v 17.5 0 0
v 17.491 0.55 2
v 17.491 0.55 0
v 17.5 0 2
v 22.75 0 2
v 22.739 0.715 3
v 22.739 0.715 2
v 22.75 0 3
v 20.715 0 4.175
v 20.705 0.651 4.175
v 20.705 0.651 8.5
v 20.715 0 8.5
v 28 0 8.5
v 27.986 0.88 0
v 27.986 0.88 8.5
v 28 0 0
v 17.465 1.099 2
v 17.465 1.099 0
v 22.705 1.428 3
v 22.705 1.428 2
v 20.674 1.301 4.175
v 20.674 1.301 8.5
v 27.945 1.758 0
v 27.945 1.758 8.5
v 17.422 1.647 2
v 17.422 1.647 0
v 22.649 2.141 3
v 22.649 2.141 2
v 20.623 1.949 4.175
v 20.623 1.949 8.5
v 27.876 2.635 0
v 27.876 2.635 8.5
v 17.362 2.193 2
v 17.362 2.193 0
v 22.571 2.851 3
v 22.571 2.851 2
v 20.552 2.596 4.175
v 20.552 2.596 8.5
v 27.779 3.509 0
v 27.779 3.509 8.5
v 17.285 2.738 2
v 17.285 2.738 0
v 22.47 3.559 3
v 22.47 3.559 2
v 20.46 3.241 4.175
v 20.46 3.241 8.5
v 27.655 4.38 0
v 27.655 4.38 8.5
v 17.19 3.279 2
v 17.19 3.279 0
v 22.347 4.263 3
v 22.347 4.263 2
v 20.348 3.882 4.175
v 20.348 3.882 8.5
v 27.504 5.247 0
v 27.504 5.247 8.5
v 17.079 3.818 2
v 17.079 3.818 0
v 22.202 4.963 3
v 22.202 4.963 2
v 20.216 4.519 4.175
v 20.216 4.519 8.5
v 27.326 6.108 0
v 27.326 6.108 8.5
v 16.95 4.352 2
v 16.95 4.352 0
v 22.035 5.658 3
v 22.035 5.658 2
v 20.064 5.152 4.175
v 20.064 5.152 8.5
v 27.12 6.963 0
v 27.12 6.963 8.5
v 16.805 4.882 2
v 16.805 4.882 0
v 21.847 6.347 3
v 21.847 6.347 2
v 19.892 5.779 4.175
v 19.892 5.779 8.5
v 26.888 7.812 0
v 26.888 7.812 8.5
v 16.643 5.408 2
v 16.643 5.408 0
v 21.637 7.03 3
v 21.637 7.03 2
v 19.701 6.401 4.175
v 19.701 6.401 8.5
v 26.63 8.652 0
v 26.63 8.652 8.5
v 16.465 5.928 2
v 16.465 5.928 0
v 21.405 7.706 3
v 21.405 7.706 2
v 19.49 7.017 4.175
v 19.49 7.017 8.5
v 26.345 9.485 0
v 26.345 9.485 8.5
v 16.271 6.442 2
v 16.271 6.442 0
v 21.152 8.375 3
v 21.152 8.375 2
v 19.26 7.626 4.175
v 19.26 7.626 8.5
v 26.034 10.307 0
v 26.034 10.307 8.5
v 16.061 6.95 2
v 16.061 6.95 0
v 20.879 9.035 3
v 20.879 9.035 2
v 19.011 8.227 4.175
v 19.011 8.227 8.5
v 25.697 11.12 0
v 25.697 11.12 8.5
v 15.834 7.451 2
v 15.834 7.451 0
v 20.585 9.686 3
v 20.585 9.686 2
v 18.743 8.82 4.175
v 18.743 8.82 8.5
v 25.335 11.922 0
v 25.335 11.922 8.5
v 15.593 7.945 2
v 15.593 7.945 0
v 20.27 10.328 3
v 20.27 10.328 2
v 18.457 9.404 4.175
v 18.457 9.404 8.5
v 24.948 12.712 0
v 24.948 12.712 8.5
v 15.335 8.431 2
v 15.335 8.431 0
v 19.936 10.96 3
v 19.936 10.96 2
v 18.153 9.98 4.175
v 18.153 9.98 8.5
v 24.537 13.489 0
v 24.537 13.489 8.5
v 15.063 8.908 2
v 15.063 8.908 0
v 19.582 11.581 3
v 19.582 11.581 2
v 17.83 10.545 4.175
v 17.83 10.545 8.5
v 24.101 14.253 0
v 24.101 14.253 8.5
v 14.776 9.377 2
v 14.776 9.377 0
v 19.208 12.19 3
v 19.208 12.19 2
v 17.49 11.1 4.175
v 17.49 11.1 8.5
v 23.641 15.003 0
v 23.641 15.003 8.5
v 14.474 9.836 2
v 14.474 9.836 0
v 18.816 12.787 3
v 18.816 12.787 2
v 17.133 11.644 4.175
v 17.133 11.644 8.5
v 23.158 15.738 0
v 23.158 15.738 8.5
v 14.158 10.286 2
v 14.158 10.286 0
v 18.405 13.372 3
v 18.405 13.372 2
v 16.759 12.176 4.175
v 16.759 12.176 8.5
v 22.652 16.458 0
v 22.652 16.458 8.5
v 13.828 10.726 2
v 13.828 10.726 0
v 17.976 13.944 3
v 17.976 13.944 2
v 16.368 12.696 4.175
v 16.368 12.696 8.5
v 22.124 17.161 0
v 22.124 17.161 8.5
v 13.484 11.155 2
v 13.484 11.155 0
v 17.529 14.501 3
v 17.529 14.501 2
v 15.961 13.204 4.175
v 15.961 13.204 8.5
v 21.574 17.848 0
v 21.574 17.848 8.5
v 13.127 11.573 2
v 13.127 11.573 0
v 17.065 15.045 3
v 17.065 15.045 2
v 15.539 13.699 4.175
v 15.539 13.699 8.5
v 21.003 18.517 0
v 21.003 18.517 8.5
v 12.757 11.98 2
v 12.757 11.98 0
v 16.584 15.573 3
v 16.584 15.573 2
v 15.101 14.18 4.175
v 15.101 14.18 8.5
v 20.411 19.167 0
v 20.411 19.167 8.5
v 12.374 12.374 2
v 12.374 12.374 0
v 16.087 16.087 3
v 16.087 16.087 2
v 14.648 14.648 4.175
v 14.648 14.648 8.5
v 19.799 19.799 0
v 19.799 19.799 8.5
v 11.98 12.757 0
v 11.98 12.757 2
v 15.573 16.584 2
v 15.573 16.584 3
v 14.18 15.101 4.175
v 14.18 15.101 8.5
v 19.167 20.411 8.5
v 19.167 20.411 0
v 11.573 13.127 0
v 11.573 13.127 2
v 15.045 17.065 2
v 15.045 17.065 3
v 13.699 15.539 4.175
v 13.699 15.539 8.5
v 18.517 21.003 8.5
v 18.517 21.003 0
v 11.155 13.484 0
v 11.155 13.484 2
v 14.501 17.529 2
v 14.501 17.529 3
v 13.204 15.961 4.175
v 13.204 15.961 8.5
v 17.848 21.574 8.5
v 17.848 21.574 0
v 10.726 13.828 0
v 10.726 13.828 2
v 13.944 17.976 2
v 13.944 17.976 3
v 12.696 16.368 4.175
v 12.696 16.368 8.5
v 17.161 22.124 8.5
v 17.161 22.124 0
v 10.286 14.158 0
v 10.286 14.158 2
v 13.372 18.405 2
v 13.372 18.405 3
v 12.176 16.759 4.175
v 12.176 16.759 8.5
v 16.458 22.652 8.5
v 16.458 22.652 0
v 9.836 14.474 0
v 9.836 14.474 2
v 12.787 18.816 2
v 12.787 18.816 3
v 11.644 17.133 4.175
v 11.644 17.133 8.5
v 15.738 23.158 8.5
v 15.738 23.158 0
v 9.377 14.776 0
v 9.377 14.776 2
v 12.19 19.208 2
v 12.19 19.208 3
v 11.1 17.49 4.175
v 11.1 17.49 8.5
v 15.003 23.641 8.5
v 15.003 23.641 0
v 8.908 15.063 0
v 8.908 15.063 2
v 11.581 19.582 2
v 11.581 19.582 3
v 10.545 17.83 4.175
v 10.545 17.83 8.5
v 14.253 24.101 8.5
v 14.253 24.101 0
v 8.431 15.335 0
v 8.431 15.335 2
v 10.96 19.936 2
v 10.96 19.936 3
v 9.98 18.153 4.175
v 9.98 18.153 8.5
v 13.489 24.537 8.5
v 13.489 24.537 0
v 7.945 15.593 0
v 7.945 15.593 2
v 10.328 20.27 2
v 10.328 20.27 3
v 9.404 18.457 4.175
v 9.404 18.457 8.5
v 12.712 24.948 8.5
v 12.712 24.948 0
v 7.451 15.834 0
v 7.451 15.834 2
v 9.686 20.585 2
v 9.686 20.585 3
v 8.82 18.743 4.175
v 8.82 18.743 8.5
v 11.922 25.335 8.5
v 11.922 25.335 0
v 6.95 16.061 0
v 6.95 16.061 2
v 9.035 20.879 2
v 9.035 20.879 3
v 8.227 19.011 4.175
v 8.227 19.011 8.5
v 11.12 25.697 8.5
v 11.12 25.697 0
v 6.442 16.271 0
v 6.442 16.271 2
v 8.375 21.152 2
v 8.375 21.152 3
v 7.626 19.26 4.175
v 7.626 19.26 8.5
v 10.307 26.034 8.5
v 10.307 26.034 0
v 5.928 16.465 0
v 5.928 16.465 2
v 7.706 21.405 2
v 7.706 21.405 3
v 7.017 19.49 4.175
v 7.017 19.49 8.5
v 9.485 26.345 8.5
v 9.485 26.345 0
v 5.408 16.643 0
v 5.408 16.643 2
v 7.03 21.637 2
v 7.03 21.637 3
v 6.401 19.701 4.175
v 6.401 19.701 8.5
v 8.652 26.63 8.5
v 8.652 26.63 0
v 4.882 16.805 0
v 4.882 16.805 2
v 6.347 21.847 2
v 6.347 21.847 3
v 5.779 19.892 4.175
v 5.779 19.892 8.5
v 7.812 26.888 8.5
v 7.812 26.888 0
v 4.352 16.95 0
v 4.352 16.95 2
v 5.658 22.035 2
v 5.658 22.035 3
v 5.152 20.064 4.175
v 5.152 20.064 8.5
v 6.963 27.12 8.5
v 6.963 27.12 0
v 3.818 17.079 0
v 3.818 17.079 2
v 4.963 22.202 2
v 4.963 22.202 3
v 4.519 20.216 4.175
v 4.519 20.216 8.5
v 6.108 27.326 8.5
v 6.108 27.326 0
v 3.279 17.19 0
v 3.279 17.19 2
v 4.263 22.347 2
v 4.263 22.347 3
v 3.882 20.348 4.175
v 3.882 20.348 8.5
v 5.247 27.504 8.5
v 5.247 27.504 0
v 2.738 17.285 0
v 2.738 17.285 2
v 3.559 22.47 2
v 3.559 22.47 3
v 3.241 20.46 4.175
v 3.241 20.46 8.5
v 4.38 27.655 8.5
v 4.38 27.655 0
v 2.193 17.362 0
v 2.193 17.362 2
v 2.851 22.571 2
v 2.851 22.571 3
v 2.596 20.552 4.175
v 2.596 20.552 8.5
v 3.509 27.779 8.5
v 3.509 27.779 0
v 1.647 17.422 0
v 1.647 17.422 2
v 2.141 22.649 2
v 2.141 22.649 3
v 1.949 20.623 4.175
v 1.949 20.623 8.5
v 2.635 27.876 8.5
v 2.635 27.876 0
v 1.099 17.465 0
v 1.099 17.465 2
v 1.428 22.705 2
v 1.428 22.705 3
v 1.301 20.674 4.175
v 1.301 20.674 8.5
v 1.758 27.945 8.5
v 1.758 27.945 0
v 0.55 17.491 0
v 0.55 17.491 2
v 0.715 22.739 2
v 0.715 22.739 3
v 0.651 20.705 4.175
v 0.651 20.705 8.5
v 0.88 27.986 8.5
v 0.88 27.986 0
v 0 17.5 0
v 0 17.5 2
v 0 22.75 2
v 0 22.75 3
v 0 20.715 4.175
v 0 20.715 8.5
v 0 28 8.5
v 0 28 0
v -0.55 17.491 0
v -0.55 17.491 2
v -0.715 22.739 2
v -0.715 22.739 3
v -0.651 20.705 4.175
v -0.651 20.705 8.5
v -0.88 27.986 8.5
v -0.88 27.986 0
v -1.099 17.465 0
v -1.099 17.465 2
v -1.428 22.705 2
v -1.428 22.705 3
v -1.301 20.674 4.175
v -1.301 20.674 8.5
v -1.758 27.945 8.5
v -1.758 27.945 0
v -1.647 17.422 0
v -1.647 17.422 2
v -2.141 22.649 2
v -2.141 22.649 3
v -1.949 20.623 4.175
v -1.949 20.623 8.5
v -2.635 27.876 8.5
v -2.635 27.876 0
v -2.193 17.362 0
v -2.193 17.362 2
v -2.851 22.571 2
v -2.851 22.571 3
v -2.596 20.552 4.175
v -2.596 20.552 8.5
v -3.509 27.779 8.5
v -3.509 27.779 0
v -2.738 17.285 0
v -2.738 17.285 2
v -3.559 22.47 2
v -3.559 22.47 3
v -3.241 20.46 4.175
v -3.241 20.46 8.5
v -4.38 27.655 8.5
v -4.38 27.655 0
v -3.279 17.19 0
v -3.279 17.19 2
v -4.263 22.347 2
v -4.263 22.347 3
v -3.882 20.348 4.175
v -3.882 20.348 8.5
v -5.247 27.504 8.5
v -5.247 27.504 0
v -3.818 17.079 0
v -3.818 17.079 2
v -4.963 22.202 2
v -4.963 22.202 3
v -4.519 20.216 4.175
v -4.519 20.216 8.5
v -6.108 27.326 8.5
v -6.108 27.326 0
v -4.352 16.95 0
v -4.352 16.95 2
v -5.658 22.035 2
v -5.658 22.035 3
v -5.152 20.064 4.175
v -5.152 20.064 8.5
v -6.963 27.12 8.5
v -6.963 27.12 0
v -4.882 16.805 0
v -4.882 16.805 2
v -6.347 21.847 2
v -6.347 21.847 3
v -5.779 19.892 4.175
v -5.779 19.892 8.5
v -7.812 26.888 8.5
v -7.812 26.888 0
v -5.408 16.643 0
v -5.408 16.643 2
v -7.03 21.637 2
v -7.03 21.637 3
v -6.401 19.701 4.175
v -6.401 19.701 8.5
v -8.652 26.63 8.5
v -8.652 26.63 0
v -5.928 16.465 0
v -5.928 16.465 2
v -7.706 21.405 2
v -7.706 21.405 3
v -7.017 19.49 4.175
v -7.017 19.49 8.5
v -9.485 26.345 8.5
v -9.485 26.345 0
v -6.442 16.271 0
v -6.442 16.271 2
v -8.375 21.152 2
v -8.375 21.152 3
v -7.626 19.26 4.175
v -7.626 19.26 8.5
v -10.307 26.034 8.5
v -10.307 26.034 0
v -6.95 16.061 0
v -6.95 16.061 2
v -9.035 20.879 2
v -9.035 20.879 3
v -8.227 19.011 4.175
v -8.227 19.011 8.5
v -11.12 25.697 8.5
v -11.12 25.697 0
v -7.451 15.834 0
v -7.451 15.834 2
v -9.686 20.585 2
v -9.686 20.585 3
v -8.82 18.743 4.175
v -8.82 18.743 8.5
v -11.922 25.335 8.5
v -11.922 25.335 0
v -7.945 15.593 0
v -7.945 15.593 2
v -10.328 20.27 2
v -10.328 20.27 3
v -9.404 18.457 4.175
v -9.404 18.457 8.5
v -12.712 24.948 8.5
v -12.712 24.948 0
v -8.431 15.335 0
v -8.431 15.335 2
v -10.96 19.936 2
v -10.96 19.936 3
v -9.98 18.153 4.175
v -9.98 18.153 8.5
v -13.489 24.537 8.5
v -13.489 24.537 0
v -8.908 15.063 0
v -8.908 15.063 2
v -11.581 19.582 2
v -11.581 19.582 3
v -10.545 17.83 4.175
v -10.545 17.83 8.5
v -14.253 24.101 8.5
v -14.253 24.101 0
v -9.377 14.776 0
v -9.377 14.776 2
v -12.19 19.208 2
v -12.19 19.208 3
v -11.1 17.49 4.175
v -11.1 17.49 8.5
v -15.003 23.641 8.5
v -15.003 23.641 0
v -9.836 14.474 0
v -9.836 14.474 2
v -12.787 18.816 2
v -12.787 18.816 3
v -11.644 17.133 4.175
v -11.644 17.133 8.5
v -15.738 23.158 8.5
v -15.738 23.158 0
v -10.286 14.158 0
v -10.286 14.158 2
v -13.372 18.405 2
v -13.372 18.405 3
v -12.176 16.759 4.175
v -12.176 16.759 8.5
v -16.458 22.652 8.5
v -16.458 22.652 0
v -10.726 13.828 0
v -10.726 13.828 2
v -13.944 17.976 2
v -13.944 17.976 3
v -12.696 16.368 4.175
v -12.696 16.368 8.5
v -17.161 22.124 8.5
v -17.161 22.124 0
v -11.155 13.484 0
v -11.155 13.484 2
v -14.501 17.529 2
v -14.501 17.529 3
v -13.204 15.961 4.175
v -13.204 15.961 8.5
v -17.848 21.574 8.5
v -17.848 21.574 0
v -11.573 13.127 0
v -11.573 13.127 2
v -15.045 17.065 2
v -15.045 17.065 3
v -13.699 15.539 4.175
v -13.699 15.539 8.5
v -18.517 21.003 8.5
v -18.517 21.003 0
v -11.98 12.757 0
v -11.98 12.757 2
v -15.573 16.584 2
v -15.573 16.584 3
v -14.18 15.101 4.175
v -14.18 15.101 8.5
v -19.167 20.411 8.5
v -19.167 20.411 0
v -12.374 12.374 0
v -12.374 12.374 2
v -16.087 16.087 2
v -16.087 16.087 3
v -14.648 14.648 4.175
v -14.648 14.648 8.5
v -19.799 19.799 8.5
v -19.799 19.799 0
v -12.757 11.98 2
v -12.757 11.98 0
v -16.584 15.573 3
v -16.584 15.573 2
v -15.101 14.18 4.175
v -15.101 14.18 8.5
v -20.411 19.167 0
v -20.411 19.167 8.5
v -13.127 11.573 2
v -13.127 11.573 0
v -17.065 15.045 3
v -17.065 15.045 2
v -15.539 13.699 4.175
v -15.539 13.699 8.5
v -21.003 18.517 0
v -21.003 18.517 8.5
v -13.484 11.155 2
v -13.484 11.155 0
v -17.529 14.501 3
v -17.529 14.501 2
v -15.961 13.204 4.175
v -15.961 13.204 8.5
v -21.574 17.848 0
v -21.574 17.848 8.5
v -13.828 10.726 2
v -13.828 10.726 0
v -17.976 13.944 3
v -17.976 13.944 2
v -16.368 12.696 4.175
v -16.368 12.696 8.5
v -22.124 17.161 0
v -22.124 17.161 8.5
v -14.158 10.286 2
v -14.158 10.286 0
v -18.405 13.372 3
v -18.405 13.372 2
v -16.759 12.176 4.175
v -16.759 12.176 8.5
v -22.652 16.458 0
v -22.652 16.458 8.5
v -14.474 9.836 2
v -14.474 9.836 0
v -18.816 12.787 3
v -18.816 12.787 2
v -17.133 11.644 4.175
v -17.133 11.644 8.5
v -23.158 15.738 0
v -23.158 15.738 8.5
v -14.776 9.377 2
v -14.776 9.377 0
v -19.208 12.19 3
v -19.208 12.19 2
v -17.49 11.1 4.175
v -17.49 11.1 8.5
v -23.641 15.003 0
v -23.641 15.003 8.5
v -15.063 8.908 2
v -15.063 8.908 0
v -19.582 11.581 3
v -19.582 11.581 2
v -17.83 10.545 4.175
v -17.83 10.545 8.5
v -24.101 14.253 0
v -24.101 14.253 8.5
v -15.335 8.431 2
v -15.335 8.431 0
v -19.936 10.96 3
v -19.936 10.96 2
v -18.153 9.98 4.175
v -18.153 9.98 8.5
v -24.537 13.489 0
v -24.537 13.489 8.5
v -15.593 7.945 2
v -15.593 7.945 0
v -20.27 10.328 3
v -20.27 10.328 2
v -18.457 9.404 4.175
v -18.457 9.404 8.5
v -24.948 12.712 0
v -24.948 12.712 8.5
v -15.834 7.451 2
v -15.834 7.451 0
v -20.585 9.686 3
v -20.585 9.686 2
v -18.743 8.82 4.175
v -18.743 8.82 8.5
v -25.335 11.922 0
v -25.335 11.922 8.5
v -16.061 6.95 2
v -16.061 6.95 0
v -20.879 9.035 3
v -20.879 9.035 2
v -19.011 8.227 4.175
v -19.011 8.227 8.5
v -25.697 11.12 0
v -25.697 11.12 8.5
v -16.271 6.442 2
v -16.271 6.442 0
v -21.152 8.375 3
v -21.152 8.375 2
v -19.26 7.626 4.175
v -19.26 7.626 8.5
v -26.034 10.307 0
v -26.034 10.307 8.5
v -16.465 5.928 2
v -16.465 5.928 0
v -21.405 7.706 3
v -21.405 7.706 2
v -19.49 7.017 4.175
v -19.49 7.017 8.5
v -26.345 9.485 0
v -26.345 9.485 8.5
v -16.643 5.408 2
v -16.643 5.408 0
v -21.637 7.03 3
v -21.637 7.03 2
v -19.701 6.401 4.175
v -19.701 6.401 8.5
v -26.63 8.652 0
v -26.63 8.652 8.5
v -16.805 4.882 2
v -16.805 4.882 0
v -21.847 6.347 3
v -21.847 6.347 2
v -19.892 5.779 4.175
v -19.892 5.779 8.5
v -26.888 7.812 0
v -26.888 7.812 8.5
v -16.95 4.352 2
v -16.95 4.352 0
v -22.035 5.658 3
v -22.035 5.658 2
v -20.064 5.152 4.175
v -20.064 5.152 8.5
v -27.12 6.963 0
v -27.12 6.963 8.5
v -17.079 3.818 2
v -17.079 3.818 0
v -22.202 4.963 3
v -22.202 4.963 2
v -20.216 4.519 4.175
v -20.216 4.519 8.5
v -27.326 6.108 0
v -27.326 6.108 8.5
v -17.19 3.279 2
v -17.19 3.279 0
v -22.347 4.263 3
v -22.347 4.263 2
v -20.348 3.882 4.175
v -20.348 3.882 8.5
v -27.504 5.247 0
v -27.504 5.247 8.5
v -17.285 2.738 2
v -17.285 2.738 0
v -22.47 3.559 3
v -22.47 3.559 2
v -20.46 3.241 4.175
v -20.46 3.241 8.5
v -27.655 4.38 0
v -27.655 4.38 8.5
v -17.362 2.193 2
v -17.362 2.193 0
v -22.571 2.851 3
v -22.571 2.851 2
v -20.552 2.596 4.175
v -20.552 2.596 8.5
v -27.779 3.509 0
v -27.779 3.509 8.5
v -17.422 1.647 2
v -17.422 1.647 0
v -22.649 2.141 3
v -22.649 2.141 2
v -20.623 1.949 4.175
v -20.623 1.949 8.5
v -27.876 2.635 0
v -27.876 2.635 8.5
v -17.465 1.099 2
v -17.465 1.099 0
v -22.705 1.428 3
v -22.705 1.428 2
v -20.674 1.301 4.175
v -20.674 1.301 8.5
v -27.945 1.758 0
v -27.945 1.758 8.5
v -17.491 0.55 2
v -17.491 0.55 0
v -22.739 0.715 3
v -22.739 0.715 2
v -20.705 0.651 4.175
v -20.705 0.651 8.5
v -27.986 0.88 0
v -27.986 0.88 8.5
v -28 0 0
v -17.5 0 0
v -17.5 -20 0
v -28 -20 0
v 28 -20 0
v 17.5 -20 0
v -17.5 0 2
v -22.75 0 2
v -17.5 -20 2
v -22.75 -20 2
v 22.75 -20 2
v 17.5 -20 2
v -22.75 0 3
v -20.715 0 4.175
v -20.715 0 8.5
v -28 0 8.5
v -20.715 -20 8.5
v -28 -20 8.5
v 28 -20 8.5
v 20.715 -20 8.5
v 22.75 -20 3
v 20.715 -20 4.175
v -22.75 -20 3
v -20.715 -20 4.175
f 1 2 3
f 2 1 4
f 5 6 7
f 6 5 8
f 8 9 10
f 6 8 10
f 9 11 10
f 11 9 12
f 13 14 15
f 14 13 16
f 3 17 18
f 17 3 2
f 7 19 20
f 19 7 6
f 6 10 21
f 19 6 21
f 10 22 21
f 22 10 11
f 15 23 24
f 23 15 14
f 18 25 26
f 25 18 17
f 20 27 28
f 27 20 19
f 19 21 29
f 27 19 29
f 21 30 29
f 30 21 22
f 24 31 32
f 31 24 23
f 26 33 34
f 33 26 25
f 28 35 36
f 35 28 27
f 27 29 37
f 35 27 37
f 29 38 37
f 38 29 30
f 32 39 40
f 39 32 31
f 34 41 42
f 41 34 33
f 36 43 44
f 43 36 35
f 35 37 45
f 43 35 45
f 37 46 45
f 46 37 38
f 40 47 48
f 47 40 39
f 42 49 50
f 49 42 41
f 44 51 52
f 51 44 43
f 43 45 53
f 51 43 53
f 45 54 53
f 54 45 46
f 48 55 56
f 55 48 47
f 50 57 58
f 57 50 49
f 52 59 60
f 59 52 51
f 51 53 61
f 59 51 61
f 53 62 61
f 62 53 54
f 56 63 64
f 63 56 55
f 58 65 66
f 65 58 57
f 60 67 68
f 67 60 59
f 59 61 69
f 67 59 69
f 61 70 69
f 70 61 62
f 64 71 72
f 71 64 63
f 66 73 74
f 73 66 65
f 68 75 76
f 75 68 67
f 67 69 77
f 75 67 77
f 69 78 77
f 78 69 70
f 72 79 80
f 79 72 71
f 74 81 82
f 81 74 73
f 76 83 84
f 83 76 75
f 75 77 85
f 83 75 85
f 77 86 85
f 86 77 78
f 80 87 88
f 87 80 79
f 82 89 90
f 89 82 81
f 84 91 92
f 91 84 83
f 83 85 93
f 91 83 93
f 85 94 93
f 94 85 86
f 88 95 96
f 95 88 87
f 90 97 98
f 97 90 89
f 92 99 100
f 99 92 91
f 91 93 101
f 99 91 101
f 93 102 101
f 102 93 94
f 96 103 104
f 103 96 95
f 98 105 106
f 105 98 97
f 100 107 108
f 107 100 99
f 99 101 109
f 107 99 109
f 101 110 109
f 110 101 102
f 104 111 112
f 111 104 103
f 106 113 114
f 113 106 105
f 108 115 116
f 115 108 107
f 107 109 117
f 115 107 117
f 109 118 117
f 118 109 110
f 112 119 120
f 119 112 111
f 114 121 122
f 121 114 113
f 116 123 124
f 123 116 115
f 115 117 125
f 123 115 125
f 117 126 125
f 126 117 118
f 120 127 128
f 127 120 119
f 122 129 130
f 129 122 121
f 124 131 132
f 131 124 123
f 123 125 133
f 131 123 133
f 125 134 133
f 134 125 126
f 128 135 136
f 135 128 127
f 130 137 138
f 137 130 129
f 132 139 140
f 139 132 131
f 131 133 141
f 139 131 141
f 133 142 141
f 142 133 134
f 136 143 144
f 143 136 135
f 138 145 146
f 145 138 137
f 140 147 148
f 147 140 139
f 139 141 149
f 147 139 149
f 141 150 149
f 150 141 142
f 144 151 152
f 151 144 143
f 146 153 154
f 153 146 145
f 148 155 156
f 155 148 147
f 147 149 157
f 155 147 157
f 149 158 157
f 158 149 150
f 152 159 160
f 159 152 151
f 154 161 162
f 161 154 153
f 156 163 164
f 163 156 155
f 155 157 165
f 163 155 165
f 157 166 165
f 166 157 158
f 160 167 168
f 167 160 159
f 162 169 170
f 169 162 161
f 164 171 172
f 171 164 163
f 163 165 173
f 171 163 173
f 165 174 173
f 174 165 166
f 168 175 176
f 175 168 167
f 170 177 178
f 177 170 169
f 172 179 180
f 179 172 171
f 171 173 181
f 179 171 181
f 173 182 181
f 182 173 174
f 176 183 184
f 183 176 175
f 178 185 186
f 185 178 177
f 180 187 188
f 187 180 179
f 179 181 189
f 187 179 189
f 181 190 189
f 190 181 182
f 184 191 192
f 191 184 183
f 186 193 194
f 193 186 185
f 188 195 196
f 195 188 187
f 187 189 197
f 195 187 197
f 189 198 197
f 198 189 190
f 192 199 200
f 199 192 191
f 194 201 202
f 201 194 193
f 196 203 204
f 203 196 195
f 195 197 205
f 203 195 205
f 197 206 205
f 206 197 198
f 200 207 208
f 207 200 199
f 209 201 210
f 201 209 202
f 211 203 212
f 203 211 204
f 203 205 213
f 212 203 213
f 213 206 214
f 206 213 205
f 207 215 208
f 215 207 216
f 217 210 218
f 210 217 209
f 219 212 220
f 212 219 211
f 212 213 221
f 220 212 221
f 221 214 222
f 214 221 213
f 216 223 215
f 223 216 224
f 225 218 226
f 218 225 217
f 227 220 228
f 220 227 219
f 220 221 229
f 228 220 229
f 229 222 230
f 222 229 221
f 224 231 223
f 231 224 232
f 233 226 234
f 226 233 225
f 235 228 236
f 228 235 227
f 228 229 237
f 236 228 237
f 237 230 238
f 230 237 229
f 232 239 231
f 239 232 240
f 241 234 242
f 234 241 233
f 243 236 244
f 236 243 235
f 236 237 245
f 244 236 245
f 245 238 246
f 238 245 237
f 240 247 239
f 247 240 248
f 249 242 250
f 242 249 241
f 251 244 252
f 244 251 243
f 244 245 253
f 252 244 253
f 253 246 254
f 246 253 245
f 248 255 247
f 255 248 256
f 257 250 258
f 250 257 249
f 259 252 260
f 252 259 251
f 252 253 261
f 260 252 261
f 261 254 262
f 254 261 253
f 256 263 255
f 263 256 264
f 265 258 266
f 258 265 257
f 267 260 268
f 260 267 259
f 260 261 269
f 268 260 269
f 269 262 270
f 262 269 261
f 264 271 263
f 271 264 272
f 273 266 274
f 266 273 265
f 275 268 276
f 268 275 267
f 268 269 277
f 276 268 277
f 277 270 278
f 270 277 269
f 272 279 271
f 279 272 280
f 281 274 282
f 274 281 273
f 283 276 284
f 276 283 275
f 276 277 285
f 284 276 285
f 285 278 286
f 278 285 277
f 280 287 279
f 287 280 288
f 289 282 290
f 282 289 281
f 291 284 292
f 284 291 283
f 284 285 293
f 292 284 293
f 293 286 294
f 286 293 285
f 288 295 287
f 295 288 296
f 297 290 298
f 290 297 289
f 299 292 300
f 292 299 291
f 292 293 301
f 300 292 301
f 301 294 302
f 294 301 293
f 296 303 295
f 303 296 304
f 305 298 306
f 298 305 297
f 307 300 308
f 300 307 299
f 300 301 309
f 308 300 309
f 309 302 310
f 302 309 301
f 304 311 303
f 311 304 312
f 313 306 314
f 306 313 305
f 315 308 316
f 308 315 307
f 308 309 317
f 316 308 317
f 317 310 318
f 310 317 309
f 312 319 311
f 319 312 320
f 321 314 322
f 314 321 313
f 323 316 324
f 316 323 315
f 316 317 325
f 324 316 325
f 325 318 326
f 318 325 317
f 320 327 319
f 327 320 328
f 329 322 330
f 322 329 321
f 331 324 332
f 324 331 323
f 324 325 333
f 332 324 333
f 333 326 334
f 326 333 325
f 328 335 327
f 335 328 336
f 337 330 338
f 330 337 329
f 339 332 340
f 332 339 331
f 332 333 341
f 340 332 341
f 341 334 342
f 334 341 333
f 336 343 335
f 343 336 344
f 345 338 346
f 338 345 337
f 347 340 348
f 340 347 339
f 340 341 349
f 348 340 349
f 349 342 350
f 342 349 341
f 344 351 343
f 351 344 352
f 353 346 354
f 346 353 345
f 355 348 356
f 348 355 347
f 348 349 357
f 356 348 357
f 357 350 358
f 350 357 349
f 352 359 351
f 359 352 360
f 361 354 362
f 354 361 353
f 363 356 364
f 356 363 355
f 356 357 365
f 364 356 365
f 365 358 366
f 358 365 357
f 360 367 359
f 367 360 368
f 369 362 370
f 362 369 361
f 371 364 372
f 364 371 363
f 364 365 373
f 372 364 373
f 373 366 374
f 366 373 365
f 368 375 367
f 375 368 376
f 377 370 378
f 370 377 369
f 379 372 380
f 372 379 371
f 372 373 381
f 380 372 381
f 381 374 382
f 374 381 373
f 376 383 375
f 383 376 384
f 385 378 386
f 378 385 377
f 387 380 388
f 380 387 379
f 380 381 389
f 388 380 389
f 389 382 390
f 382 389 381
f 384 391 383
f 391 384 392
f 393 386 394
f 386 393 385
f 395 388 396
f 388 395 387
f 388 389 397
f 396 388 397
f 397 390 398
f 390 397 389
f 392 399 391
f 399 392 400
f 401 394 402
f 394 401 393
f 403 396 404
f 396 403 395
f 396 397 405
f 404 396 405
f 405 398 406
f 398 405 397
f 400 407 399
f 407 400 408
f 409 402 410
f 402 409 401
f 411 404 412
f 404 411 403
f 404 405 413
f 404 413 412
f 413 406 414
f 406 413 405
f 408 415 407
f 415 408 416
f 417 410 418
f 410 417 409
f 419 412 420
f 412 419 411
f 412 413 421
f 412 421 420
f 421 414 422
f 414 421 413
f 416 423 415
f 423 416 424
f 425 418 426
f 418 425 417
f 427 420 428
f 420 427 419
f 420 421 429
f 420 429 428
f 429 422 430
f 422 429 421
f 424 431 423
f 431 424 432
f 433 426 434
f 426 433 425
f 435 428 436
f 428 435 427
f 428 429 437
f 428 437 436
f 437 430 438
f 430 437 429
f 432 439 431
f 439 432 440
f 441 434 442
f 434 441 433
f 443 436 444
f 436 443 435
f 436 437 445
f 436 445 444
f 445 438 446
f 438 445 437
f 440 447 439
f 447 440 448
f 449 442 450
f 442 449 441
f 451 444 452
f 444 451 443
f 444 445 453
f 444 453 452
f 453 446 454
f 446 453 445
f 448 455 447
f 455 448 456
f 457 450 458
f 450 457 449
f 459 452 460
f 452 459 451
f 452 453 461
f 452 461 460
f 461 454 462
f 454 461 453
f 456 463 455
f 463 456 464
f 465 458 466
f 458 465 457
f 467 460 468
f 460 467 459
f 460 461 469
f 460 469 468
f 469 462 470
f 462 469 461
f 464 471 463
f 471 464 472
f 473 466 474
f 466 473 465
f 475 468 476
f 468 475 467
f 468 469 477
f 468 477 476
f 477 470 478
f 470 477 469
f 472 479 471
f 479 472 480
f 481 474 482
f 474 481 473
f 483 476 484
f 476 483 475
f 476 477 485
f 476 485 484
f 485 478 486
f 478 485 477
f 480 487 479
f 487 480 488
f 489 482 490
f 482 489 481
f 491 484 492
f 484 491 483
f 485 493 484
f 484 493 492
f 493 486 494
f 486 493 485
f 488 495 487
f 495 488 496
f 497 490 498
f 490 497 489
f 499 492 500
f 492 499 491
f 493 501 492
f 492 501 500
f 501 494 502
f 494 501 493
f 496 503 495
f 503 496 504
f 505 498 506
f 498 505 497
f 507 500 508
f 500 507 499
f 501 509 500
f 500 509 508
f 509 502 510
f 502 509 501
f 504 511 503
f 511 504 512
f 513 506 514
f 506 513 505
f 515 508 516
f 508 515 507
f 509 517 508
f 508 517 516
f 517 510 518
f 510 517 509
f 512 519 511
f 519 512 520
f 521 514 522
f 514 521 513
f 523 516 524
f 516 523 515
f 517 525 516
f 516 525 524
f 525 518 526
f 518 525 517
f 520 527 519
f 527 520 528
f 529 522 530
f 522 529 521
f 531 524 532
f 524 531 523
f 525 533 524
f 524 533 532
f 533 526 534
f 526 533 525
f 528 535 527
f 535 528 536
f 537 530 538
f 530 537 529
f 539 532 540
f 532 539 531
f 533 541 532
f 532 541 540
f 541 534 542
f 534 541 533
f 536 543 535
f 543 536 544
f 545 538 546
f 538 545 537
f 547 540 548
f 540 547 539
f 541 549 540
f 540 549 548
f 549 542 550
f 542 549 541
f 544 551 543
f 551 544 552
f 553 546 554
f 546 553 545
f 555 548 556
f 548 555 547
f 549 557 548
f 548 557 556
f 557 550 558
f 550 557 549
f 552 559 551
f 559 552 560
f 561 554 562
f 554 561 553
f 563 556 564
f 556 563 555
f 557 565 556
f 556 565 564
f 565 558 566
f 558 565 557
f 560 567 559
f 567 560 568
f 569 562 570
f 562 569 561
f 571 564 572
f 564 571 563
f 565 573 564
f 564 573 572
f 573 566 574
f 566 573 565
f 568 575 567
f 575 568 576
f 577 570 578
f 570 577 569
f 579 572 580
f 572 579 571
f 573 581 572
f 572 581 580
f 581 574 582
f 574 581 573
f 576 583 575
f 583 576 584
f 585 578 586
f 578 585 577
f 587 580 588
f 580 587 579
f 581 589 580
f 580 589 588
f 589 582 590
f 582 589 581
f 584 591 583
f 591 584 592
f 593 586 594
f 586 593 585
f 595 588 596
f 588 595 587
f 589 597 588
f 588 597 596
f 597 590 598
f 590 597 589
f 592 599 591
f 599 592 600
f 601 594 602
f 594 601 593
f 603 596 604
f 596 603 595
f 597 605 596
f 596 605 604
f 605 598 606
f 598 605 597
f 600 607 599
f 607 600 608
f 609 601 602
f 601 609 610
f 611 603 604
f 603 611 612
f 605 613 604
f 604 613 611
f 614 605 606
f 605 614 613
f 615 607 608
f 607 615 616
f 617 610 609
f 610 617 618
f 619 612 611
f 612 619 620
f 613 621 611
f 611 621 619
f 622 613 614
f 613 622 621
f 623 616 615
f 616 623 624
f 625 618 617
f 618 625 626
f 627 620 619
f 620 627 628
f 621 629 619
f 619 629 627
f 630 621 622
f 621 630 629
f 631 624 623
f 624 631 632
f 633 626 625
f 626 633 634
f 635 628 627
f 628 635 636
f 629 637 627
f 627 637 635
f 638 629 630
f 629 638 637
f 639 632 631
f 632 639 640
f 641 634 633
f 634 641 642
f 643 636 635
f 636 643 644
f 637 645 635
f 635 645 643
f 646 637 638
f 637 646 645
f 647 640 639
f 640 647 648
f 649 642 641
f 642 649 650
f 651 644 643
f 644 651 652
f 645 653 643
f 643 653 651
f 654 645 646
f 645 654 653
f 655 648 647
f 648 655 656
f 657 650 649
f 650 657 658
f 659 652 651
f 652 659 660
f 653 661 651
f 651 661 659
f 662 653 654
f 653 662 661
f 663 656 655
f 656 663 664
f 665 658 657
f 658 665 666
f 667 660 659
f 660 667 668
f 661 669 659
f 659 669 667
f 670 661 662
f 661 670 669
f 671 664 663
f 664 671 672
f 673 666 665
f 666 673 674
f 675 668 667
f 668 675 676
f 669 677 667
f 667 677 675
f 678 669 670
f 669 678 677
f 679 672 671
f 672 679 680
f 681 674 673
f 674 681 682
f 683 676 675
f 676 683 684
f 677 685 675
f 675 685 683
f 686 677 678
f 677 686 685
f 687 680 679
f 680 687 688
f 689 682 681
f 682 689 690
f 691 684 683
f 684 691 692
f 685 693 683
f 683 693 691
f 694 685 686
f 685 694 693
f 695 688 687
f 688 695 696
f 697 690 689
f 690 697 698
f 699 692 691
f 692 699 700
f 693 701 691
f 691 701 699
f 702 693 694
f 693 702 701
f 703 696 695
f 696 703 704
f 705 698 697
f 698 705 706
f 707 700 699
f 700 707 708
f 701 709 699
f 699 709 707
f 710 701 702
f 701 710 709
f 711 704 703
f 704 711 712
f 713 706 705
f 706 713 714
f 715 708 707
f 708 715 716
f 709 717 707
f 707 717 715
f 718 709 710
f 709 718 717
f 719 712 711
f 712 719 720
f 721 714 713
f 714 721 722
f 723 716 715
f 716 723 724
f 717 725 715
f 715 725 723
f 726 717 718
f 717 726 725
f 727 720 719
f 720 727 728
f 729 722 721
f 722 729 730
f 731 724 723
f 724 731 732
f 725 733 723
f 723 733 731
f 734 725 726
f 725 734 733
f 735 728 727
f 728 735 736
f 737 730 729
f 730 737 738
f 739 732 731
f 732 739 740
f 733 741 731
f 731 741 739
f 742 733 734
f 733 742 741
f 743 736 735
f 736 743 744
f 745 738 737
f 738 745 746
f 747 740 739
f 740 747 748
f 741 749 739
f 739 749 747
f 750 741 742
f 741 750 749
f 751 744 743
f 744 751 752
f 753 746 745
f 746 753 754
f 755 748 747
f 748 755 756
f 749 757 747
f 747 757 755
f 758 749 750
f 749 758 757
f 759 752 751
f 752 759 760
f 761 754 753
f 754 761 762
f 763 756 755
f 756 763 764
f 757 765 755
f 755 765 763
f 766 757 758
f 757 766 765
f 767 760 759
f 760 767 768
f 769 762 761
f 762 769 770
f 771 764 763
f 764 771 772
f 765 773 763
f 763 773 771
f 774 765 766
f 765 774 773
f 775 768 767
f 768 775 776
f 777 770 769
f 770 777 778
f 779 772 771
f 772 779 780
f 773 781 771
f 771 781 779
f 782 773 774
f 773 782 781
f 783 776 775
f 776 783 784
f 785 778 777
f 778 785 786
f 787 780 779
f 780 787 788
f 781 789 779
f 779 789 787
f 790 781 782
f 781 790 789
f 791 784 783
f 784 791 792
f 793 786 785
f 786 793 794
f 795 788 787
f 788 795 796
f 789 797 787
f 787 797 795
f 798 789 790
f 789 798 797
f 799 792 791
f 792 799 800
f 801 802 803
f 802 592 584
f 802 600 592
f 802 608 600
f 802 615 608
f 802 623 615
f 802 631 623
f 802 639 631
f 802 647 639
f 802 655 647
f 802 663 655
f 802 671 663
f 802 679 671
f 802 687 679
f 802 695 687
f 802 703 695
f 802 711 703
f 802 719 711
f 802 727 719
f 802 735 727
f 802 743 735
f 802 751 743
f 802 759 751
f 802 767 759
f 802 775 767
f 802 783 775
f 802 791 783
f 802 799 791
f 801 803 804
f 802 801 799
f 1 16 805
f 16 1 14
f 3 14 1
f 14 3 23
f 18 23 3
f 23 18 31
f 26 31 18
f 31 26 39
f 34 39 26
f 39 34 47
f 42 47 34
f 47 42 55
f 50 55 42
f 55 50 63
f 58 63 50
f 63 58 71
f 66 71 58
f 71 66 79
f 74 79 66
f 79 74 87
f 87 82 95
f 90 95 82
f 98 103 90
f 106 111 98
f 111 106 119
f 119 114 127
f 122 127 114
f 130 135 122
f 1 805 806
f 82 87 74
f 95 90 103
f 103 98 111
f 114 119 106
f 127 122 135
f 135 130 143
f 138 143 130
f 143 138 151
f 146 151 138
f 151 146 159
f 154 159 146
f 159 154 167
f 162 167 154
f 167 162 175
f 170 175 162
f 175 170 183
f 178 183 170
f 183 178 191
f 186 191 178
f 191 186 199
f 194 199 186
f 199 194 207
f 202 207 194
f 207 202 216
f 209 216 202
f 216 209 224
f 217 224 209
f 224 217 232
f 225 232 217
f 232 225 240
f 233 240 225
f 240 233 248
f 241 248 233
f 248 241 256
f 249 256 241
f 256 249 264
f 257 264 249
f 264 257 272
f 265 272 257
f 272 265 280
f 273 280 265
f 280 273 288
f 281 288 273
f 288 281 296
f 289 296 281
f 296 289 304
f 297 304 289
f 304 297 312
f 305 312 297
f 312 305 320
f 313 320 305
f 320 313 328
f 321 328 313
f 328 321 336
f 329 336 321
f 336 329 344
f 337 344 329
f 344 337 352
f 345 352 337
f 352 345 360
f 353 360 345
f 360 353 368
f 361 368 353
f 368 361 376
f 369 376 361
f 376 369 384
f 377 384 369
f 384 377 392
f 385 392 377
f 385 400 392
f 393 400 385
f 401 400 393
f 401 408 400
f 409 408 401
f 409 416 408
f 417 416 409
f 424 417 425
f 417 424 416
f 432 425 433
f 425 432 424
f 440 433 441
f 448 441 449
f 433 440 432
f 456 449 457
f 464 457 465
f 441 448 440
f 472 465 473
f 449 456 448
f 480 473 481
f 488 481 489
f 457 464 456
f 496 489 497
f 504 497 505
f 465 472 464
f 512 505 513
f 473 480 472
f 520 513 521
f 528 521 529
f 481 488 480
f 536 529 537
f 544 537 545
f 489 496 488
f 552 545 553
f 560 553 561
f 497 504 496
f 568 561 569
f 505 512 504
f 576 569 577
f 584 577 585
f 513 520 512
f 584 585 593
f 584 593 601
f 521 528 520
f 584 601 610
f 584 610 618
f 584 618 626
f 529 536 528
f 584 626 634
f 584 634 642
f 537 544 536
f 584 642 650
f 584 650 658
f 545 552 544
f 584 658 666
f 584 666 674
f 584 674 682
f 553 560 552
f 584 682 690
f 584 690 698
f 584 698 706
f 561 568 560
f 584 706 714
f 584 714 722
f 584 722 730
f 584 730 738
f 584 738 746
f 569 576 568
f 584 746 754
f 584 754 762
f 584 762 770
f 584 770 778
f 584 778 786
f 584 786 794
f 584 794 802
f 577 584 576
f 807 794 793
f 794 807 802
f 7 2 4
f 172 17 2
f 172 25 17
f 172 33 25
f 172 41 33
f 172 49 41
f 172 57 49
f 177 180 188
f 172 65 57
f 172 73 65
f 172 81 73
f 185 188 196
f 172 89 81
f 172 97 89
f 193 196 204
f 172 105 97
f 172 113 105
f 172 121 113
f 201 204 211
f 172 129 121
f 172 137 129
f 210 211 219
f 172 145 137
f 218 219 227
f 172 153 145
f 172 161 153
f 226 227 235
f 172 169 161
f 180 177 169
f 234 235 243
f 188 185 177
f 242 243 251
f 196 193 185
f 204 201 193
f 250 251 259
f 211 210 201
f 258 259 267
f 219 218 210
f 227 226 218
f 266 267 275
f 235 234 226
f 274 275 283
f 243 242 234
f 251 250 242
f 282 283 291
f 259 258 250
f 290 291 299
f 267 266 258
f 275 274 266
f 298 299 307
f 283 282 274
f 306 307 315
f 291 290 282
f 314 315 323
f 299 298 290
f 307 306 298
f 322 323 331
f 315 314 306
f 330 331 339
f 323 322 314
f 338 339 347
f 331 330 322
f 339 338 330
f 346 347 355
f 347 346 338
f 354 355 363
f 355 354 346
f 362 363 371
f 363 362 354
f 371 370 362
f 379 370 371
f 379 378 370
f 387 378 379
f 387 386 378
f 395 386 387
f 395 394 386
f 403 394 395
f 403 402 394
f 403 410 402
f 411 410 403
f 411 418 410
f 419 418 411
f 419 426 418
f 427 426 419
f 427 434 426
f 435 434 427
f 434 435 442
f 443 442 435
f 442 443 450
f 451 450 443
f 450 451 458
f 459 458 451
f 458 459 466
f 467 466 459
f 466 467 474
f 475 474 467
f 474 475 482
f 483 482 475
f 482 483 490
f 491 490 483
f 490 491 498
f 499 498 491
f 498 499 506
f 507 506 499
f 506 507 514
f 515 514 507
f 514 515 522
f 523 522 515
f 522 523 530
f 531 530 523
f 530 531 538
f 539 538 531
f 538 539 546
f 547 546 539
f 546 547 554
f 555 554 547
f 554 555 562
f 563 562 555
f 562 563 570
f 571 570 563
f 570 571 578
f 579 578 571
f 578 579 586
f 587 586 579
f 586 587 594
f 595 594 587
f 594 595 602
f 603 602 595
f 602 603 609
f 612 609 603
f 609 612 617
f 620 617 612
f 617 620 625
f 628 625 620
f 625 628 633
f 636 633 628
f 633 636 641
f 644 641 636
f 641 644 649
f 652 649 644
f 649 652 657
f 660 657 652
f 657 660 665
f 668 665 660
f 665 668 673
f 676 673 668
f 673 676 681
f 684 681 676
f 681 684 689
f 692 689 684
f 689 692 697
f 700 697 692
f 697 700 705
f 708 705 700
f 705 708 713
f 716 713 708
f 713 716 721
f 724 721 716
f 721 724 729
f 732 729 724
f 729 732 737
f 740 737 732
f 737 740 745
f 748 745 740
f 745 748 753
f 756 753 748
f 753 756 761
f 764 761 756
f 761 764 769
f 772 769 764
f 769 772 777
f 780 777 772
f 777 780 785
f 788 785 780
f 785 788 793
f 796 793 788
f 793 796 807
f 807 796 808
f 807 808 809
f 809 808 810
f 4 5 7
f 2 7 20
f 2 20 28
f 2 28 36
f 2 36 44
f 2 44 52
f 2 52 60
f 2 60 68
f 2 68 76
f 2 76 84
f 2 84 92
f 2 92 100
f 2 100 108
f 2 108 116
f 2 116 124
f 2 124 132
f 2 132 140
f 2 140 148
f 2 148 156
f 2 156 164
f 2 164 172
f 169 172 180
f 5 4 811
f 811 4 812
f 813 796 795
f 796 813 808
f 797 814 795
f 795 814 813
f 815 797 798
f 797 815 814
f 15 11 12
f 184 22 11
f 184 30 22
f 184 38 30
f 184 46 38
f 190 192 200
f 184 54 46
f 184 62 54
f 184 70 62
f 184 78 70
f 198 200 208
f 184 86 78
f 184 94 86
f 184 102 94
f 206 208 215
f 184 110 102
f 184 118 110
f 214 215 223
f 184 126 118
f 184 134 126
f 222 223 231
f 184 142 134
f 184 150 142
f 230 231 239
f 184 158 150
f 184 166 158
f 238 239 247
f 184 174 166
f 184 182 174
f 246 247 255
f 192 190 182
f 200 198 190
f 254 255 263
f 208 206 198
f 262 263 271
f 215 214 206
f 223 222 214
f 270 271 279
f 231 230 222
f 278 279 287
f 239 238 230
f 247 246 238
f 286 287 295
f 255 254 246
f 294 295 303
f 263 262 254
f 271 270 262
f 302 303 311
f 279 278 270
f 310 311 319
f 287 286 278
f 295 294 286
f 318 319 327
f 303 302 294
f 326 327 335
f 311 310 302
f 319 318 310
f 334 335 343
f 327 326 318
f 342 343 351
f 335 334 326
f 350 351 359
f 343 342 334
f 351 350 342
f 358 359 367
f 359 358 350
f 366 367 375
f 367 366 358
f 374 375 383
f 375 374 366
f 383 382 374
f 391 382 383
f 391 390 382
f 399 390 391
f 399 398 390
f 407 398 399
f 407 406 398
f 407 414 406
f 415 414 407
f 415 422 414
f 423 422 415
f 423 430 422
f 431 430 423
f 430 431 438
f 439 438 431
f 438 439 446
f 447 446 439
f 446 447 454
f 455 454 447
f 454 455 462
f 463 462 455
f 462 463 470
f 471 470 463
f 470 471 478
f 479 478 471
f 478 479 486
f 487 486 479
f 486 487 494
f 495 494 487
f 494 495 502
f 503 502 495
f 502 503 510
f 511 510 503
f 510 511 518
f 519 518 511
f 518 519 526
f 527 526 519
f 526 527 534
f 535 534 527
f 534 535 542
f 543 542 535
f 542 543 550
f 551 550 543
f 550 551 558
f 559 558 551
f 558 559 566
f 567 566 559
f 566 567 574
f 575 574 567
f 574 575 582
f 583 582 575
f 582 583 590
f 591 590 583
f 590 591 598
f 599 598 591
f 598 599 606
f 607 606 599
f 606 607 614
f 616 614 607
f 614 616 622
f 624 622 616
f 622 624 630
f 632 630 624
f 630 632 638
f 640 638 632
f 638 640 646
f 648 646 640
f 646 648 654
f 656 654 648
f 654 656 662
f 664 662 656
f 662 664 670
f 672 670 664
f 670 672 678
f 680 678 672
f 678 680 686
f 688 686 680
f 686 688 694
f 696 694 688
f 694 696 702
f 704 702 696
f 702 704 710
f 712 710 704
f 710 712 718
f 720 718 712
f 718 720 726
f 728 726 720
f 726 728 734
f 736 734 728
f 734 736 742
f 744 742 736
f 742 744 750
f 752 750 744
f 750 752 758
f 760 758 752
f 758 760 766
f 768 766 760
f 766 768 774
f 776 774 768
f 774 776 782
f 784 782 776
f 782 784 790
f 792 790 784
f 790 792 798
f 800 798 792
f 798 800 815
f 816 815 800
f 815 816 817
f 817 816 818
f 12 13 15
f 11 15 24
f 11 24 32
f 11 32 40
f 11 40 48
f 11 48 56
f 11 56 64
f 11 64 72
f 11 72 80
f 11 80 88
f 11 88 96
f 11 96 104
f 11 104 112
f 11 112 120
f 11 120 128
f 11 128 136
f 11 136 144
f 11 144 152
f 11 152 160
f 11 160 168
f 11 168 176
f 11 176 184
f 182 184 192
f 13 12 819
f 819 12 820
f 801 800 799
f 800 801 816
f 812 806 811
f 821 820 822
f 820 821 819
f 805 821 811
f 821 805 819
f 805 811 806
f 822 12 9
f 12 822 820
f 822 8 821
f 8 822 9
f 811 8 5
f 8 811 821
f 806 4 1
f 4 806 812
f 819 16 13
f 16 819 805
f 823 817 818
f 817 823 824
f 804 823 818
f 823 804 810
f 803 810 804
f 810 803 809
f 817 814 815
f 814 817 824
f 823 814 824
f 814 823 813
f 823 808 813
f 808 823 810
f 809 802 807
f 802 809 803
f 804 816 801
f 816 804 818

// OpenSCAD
// Round hygrometer holder.
// Hygrometer: 45mm lip OD, 40mm body OD, 15mm thick.
// U lies flat on bed (rotate_extrude axis = Z = print Z).
// Shape: 180° arc + two tangent straight extensions = U.
// Slide device in from open end; lip captured in middle channel.

$fn = 200;

// Profile (radial X, Z height). Inner stepped wall, outer straight wall.
inner_bottom_r = 17.5;     // 35mm gap at bed (front-face stop)
lip_r          = 22.75;    // 45.5mm gap (lip channel, 45mm lip + clearance)
body_r         = 20.715;   // 41.43mm gap (body channel, 40mm body + clearance)
outer_r        = 28;       // ~5mm wall outside lip channel

z_floor   = 2;             // front-stop thickness
z_lip_top = 3;           // floor + 2.5mm lip channel
z_top     = 8.5;           // lip_top + 4mm body channel

arm_length = 20;            // straight tangent extension on each side

overhang_angle = 30;       // chamfer angle (deg from horizontal) at top inner step.
                           // 45° is steepest self-supporting overhang for FDM.
chamfer_dz = (lip_r - body_r) * tan(overhang_angle);

profile = [
    [inner_bottom_r, 0],
    [inner_bottom_r, z_floor],
    [lip_r,          z_floor],
    [lip_r,          z_lip_top],
    [body_r,         z_lip_top + chamfer_dz],   // chamfered top inner step
    [body_r,         z_top],
    [outer_r,        z_top],
    [outer_r,        0],
];

module arm() {
    // Profile placed in XZ plane (radial X from inner_bottom_r..outer_r),
    // extruded along -Y for arm_length.
    rotate([90, 0, 0])
        linear_extrude(height = arm_length)
            polygon(points = profile);
}

union() {
    // Top half arc (0° to 180° in XY plane).
    rotate_extrude(angle = 180)
        polygon(points = profile);

    // Right tangent arm (at angle 0°, extending -Y).
    arm();

    // Left tangent arm (mirrored across YZ plane).
    mirror([1, 0, 0]) arm();
}
